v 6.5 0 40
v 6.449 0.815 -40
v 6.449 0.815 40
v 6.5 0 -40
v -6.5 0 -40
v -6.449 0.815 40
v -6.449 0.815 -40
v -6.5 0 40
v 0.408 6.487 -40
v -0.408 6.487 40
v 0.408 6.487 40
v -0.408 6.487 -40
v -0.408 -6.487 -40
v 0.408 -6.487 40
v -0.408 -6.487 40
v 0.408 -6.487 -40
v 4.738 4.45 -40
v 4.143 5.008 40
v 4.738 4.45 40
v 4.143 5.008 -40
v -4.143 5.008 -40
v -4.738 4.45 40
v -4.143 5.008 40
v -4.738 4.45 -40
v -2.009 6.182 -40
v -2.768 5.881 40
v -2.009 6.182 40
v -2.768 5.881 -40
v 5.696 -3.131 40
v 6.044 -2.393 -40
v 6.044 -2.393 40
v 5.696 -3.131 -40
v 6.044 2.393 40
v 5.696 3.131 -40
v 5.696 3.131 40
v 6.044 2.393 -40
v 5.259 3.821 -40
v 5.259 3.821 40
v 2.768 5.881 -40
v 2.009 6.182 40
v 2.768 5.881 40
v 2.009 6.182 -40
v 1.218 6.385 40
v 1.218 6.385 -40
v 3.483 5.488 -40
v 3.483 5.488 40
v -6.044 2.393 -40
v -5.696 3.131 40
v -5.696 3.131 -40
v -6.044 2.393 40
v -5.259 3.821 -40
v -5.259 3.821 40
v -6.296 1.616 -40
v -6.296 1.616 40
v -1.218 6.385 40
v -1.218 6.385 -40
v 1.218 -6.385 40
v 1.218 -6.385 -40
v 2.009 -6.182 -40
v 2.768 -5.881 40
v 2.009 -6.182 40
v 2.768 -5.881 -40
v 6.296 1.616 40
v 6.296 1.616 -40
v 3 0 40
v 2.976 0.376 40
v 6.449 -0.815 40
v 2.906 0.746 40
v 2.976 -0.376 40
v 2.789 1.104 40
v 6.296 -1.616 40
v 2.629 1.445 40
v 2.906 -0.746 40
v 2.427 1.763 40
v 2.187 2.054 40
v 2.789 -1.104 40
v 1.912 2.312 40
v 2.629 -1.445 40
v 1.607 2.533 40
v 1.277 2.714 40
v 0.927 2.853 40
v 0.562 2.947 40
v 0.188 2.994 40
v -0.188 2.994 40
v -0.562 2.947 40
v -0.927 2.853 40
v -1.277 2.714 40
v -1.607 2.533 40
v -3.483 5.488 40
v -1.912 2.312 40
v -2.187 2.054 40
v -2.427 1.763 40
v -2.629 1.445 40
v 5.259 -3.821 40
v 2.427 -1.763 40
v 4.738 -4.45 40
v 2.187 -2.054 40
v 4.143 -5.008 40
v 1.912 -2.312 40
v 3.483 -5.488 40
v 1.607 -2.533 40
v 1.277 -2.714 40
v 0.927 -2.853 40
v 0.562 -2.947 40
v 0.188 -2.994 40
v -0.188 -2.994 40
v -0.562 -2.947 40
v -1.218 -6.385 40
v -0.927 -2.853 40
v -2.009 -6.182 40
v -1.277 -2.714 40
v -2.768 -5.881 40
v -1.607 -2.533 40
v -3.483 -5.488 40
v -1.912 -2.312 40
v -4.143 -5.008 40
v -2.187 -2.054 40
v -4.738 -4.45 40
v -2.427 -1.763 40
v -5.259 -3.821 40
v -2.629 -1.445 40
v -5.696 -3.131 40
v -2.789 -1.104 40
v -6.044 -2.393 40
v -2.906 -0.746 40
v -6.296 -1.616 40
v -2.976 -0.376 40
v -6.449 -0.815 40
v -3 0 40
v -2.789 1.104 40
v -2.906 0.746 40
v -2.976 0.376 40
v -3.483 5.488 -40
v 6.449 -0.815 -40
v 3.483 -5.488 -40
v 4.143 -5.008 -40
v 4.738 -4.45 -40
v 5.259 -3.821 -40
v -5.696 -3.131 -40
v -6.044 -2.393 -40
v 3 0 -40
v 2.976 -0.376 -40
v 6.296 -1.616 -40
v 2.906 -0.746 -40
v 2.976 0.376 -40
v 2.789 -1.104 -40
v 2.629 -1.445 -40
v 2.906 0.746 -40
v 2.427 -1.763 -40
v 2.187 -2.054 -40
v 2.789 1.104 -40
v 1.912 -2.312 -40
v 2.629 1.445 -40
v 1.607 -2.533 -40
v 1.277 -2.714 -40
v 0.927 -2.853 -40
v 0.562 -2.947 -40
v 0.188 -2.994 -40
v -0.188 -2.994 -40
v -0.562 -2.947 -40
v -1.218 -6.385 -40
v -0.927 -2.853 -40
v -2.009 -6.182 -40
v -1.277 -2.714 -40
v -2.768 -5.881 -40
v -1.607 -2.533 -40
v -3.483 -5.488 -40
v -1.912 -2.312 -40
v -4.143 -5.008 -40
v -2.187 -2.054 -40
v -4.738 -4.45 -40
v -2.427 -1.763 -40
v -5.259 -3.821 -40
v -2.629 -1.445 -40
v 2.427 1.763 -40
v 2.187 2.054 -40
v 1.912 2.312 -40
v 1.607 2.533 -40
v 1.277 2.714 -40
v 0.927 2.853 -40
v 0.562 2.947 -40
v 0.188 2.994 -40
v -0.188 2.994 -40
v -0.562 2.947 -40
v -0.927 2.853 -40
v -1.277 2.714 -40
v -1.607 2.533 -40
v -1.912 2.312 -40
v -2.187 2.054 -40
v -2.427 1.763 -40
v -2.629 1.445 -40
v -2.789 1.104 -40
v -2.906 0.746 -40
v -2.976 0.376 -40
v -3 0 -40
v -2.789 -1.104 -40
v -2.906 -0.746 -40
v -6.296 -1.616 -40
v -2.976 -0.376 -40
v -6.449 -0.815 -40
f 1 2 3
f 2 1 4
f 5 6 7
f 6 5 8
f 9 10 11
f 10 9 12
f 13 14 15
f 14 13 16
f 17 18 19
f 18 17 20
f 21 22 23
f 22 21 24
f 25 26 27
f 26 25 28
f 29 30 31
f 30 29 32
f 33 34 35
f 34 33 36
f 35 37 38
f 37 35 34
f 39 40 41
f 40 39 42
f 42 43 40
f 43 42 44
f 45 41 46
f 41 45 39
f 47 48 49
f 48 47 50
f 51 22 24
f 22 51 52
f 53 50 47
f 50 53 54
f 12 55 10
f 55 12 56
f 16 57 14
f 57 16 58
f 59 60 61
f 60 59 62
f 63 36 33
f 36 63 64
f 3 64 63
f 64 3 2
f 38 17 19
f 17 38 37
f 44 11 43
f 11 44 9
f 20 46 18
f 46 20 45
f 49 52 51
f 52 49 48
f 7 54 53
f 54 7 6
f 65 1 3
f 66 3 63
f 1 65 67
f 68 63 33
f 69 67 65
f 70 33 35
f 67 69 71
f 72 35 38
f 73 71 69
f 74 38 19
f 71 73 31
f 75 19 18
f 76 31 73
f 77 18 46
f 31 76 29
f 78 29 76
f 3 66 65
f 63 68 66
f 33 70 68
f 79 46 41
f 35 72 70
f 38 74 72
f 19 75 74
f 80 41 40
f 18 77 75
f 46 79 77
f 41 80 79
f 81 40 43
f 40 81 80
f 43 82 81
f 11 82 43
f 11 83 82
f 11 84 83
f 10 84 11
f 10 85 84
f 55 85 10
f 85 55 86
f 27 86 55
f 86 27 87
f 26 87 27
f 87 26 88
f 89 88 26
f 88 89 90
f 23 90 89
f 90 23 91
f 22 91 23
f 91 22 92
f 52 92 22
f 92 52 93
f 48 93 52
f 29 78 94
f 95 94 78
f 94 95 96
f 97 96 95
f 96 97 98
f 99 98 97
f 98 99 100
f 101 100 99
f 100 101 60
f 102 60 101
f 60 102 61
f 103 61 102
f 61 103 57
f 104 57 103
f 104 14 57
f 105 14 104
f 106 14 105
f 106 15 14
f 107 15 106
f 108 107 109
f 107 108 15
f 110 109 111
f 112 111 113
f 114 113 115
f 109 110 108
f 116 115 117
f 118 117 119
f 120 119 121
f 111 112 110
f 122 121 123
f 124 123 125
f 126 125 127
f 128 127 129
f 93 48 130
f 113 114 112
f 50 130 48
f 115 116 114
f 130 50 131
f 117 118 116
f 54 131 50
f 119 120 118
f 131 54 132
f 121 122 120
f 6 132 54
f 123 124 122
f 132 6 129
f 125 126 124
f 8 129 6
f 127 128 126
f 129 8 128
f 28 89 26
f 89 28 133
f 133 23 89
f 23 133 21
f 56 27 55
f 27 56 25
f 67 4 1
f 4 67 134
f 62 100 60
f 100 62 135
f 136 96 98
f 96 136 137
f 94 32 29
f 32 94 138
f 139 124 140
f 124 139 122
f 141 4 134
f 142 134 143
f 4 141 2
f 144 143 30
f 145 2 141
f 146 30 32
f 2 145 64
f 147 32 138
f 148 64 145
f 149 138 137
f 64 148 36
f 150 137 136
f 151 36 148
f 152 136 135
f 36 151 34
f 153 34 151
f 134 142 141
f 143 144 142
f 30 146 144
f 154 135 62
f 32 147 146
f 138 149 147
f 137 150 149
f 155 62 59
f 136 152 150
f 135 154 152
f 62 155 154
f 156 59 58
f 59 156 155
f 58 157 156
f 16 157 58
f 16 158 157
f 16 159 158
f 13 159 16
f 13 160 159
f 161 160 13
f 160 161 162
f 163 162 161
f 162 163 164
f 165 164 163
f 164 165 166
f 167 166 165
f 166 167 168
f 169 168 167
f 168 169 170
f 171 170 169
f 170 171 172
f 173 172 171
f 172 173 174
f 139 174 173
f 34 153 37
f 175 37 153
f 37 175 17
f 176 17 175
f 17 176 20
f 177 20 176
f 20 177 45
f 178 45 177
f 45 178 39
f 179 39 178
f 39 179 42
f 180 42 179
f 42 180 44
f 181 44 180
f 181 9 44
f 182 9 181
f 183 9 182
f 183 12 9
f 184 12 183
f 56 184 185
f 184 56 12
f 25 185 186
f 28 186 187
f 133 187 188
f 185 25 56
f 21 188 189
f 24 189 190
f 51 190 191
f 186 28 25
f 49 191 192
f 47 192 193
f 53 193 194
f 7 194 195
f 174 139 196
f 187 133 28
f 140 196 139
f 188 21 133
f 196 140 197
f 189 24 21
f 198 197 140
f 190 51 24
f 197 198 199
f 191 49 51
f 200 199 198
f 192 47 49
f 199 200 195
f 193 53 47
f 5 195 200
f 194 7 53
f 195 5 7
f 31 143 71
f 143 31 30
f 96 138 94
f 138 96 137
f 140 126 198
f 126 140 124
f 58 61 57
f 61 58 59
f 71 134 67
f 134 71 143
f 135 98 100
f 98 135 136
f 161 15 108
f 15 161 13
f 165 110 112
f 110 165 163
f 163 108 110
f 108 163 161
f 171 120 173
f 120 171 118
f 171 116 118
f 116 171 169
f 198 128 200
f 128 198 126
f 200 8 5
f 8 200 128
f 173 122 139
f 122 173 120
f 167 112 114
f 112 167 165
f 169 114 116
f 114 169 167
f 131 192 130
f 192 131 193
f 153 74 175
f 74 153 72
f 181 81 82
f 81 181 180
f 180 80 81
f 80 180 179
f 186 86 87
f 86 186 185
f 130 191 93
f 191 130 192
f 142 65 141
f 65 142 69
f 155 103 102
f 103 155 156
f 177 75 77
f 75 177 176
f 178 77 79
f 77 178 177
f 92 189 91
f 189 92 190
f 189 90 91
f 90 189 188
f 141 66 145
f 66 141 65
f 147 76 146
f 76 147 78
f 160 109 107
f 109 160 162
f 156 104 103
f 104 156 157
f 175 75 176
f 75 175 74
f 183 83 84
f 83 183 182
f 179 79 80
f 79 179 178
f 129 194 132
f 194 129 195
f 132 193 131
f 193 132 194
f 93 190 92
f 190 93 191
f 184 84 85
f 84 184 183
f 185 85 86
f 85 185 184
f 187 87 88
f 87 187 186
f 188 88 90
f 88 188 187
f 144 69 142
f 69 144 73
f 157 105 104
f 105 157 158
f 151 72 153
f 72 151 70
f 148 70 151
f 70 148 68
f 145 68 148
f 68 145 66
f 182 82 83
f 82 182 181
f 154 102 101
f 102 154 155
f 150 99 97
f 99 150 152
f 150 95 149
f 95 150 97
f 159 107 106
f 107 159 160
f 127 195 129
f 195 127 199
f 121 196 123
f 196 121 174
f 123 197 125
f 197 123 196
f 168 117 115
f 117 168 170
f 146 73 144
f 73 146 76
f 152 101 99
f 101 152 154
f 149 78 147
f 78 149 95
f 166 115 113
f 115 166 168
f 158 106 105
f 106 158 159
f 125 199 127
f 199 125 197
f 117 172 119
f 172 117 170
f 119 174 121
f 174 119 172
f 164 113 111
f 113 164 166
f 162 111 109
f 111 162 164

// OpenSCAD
$fn = 50;


difference() {
	union() {
		translate(v = [0, 0, -40.0000000000]) {
			cylinder(h = 80, r = 6.5000000000);
		}
	}
	union() {
		translate(v = [0, 0, -100.0000000000]) {
			cylinder(h = 200, r = 3);
		}
	}
}
